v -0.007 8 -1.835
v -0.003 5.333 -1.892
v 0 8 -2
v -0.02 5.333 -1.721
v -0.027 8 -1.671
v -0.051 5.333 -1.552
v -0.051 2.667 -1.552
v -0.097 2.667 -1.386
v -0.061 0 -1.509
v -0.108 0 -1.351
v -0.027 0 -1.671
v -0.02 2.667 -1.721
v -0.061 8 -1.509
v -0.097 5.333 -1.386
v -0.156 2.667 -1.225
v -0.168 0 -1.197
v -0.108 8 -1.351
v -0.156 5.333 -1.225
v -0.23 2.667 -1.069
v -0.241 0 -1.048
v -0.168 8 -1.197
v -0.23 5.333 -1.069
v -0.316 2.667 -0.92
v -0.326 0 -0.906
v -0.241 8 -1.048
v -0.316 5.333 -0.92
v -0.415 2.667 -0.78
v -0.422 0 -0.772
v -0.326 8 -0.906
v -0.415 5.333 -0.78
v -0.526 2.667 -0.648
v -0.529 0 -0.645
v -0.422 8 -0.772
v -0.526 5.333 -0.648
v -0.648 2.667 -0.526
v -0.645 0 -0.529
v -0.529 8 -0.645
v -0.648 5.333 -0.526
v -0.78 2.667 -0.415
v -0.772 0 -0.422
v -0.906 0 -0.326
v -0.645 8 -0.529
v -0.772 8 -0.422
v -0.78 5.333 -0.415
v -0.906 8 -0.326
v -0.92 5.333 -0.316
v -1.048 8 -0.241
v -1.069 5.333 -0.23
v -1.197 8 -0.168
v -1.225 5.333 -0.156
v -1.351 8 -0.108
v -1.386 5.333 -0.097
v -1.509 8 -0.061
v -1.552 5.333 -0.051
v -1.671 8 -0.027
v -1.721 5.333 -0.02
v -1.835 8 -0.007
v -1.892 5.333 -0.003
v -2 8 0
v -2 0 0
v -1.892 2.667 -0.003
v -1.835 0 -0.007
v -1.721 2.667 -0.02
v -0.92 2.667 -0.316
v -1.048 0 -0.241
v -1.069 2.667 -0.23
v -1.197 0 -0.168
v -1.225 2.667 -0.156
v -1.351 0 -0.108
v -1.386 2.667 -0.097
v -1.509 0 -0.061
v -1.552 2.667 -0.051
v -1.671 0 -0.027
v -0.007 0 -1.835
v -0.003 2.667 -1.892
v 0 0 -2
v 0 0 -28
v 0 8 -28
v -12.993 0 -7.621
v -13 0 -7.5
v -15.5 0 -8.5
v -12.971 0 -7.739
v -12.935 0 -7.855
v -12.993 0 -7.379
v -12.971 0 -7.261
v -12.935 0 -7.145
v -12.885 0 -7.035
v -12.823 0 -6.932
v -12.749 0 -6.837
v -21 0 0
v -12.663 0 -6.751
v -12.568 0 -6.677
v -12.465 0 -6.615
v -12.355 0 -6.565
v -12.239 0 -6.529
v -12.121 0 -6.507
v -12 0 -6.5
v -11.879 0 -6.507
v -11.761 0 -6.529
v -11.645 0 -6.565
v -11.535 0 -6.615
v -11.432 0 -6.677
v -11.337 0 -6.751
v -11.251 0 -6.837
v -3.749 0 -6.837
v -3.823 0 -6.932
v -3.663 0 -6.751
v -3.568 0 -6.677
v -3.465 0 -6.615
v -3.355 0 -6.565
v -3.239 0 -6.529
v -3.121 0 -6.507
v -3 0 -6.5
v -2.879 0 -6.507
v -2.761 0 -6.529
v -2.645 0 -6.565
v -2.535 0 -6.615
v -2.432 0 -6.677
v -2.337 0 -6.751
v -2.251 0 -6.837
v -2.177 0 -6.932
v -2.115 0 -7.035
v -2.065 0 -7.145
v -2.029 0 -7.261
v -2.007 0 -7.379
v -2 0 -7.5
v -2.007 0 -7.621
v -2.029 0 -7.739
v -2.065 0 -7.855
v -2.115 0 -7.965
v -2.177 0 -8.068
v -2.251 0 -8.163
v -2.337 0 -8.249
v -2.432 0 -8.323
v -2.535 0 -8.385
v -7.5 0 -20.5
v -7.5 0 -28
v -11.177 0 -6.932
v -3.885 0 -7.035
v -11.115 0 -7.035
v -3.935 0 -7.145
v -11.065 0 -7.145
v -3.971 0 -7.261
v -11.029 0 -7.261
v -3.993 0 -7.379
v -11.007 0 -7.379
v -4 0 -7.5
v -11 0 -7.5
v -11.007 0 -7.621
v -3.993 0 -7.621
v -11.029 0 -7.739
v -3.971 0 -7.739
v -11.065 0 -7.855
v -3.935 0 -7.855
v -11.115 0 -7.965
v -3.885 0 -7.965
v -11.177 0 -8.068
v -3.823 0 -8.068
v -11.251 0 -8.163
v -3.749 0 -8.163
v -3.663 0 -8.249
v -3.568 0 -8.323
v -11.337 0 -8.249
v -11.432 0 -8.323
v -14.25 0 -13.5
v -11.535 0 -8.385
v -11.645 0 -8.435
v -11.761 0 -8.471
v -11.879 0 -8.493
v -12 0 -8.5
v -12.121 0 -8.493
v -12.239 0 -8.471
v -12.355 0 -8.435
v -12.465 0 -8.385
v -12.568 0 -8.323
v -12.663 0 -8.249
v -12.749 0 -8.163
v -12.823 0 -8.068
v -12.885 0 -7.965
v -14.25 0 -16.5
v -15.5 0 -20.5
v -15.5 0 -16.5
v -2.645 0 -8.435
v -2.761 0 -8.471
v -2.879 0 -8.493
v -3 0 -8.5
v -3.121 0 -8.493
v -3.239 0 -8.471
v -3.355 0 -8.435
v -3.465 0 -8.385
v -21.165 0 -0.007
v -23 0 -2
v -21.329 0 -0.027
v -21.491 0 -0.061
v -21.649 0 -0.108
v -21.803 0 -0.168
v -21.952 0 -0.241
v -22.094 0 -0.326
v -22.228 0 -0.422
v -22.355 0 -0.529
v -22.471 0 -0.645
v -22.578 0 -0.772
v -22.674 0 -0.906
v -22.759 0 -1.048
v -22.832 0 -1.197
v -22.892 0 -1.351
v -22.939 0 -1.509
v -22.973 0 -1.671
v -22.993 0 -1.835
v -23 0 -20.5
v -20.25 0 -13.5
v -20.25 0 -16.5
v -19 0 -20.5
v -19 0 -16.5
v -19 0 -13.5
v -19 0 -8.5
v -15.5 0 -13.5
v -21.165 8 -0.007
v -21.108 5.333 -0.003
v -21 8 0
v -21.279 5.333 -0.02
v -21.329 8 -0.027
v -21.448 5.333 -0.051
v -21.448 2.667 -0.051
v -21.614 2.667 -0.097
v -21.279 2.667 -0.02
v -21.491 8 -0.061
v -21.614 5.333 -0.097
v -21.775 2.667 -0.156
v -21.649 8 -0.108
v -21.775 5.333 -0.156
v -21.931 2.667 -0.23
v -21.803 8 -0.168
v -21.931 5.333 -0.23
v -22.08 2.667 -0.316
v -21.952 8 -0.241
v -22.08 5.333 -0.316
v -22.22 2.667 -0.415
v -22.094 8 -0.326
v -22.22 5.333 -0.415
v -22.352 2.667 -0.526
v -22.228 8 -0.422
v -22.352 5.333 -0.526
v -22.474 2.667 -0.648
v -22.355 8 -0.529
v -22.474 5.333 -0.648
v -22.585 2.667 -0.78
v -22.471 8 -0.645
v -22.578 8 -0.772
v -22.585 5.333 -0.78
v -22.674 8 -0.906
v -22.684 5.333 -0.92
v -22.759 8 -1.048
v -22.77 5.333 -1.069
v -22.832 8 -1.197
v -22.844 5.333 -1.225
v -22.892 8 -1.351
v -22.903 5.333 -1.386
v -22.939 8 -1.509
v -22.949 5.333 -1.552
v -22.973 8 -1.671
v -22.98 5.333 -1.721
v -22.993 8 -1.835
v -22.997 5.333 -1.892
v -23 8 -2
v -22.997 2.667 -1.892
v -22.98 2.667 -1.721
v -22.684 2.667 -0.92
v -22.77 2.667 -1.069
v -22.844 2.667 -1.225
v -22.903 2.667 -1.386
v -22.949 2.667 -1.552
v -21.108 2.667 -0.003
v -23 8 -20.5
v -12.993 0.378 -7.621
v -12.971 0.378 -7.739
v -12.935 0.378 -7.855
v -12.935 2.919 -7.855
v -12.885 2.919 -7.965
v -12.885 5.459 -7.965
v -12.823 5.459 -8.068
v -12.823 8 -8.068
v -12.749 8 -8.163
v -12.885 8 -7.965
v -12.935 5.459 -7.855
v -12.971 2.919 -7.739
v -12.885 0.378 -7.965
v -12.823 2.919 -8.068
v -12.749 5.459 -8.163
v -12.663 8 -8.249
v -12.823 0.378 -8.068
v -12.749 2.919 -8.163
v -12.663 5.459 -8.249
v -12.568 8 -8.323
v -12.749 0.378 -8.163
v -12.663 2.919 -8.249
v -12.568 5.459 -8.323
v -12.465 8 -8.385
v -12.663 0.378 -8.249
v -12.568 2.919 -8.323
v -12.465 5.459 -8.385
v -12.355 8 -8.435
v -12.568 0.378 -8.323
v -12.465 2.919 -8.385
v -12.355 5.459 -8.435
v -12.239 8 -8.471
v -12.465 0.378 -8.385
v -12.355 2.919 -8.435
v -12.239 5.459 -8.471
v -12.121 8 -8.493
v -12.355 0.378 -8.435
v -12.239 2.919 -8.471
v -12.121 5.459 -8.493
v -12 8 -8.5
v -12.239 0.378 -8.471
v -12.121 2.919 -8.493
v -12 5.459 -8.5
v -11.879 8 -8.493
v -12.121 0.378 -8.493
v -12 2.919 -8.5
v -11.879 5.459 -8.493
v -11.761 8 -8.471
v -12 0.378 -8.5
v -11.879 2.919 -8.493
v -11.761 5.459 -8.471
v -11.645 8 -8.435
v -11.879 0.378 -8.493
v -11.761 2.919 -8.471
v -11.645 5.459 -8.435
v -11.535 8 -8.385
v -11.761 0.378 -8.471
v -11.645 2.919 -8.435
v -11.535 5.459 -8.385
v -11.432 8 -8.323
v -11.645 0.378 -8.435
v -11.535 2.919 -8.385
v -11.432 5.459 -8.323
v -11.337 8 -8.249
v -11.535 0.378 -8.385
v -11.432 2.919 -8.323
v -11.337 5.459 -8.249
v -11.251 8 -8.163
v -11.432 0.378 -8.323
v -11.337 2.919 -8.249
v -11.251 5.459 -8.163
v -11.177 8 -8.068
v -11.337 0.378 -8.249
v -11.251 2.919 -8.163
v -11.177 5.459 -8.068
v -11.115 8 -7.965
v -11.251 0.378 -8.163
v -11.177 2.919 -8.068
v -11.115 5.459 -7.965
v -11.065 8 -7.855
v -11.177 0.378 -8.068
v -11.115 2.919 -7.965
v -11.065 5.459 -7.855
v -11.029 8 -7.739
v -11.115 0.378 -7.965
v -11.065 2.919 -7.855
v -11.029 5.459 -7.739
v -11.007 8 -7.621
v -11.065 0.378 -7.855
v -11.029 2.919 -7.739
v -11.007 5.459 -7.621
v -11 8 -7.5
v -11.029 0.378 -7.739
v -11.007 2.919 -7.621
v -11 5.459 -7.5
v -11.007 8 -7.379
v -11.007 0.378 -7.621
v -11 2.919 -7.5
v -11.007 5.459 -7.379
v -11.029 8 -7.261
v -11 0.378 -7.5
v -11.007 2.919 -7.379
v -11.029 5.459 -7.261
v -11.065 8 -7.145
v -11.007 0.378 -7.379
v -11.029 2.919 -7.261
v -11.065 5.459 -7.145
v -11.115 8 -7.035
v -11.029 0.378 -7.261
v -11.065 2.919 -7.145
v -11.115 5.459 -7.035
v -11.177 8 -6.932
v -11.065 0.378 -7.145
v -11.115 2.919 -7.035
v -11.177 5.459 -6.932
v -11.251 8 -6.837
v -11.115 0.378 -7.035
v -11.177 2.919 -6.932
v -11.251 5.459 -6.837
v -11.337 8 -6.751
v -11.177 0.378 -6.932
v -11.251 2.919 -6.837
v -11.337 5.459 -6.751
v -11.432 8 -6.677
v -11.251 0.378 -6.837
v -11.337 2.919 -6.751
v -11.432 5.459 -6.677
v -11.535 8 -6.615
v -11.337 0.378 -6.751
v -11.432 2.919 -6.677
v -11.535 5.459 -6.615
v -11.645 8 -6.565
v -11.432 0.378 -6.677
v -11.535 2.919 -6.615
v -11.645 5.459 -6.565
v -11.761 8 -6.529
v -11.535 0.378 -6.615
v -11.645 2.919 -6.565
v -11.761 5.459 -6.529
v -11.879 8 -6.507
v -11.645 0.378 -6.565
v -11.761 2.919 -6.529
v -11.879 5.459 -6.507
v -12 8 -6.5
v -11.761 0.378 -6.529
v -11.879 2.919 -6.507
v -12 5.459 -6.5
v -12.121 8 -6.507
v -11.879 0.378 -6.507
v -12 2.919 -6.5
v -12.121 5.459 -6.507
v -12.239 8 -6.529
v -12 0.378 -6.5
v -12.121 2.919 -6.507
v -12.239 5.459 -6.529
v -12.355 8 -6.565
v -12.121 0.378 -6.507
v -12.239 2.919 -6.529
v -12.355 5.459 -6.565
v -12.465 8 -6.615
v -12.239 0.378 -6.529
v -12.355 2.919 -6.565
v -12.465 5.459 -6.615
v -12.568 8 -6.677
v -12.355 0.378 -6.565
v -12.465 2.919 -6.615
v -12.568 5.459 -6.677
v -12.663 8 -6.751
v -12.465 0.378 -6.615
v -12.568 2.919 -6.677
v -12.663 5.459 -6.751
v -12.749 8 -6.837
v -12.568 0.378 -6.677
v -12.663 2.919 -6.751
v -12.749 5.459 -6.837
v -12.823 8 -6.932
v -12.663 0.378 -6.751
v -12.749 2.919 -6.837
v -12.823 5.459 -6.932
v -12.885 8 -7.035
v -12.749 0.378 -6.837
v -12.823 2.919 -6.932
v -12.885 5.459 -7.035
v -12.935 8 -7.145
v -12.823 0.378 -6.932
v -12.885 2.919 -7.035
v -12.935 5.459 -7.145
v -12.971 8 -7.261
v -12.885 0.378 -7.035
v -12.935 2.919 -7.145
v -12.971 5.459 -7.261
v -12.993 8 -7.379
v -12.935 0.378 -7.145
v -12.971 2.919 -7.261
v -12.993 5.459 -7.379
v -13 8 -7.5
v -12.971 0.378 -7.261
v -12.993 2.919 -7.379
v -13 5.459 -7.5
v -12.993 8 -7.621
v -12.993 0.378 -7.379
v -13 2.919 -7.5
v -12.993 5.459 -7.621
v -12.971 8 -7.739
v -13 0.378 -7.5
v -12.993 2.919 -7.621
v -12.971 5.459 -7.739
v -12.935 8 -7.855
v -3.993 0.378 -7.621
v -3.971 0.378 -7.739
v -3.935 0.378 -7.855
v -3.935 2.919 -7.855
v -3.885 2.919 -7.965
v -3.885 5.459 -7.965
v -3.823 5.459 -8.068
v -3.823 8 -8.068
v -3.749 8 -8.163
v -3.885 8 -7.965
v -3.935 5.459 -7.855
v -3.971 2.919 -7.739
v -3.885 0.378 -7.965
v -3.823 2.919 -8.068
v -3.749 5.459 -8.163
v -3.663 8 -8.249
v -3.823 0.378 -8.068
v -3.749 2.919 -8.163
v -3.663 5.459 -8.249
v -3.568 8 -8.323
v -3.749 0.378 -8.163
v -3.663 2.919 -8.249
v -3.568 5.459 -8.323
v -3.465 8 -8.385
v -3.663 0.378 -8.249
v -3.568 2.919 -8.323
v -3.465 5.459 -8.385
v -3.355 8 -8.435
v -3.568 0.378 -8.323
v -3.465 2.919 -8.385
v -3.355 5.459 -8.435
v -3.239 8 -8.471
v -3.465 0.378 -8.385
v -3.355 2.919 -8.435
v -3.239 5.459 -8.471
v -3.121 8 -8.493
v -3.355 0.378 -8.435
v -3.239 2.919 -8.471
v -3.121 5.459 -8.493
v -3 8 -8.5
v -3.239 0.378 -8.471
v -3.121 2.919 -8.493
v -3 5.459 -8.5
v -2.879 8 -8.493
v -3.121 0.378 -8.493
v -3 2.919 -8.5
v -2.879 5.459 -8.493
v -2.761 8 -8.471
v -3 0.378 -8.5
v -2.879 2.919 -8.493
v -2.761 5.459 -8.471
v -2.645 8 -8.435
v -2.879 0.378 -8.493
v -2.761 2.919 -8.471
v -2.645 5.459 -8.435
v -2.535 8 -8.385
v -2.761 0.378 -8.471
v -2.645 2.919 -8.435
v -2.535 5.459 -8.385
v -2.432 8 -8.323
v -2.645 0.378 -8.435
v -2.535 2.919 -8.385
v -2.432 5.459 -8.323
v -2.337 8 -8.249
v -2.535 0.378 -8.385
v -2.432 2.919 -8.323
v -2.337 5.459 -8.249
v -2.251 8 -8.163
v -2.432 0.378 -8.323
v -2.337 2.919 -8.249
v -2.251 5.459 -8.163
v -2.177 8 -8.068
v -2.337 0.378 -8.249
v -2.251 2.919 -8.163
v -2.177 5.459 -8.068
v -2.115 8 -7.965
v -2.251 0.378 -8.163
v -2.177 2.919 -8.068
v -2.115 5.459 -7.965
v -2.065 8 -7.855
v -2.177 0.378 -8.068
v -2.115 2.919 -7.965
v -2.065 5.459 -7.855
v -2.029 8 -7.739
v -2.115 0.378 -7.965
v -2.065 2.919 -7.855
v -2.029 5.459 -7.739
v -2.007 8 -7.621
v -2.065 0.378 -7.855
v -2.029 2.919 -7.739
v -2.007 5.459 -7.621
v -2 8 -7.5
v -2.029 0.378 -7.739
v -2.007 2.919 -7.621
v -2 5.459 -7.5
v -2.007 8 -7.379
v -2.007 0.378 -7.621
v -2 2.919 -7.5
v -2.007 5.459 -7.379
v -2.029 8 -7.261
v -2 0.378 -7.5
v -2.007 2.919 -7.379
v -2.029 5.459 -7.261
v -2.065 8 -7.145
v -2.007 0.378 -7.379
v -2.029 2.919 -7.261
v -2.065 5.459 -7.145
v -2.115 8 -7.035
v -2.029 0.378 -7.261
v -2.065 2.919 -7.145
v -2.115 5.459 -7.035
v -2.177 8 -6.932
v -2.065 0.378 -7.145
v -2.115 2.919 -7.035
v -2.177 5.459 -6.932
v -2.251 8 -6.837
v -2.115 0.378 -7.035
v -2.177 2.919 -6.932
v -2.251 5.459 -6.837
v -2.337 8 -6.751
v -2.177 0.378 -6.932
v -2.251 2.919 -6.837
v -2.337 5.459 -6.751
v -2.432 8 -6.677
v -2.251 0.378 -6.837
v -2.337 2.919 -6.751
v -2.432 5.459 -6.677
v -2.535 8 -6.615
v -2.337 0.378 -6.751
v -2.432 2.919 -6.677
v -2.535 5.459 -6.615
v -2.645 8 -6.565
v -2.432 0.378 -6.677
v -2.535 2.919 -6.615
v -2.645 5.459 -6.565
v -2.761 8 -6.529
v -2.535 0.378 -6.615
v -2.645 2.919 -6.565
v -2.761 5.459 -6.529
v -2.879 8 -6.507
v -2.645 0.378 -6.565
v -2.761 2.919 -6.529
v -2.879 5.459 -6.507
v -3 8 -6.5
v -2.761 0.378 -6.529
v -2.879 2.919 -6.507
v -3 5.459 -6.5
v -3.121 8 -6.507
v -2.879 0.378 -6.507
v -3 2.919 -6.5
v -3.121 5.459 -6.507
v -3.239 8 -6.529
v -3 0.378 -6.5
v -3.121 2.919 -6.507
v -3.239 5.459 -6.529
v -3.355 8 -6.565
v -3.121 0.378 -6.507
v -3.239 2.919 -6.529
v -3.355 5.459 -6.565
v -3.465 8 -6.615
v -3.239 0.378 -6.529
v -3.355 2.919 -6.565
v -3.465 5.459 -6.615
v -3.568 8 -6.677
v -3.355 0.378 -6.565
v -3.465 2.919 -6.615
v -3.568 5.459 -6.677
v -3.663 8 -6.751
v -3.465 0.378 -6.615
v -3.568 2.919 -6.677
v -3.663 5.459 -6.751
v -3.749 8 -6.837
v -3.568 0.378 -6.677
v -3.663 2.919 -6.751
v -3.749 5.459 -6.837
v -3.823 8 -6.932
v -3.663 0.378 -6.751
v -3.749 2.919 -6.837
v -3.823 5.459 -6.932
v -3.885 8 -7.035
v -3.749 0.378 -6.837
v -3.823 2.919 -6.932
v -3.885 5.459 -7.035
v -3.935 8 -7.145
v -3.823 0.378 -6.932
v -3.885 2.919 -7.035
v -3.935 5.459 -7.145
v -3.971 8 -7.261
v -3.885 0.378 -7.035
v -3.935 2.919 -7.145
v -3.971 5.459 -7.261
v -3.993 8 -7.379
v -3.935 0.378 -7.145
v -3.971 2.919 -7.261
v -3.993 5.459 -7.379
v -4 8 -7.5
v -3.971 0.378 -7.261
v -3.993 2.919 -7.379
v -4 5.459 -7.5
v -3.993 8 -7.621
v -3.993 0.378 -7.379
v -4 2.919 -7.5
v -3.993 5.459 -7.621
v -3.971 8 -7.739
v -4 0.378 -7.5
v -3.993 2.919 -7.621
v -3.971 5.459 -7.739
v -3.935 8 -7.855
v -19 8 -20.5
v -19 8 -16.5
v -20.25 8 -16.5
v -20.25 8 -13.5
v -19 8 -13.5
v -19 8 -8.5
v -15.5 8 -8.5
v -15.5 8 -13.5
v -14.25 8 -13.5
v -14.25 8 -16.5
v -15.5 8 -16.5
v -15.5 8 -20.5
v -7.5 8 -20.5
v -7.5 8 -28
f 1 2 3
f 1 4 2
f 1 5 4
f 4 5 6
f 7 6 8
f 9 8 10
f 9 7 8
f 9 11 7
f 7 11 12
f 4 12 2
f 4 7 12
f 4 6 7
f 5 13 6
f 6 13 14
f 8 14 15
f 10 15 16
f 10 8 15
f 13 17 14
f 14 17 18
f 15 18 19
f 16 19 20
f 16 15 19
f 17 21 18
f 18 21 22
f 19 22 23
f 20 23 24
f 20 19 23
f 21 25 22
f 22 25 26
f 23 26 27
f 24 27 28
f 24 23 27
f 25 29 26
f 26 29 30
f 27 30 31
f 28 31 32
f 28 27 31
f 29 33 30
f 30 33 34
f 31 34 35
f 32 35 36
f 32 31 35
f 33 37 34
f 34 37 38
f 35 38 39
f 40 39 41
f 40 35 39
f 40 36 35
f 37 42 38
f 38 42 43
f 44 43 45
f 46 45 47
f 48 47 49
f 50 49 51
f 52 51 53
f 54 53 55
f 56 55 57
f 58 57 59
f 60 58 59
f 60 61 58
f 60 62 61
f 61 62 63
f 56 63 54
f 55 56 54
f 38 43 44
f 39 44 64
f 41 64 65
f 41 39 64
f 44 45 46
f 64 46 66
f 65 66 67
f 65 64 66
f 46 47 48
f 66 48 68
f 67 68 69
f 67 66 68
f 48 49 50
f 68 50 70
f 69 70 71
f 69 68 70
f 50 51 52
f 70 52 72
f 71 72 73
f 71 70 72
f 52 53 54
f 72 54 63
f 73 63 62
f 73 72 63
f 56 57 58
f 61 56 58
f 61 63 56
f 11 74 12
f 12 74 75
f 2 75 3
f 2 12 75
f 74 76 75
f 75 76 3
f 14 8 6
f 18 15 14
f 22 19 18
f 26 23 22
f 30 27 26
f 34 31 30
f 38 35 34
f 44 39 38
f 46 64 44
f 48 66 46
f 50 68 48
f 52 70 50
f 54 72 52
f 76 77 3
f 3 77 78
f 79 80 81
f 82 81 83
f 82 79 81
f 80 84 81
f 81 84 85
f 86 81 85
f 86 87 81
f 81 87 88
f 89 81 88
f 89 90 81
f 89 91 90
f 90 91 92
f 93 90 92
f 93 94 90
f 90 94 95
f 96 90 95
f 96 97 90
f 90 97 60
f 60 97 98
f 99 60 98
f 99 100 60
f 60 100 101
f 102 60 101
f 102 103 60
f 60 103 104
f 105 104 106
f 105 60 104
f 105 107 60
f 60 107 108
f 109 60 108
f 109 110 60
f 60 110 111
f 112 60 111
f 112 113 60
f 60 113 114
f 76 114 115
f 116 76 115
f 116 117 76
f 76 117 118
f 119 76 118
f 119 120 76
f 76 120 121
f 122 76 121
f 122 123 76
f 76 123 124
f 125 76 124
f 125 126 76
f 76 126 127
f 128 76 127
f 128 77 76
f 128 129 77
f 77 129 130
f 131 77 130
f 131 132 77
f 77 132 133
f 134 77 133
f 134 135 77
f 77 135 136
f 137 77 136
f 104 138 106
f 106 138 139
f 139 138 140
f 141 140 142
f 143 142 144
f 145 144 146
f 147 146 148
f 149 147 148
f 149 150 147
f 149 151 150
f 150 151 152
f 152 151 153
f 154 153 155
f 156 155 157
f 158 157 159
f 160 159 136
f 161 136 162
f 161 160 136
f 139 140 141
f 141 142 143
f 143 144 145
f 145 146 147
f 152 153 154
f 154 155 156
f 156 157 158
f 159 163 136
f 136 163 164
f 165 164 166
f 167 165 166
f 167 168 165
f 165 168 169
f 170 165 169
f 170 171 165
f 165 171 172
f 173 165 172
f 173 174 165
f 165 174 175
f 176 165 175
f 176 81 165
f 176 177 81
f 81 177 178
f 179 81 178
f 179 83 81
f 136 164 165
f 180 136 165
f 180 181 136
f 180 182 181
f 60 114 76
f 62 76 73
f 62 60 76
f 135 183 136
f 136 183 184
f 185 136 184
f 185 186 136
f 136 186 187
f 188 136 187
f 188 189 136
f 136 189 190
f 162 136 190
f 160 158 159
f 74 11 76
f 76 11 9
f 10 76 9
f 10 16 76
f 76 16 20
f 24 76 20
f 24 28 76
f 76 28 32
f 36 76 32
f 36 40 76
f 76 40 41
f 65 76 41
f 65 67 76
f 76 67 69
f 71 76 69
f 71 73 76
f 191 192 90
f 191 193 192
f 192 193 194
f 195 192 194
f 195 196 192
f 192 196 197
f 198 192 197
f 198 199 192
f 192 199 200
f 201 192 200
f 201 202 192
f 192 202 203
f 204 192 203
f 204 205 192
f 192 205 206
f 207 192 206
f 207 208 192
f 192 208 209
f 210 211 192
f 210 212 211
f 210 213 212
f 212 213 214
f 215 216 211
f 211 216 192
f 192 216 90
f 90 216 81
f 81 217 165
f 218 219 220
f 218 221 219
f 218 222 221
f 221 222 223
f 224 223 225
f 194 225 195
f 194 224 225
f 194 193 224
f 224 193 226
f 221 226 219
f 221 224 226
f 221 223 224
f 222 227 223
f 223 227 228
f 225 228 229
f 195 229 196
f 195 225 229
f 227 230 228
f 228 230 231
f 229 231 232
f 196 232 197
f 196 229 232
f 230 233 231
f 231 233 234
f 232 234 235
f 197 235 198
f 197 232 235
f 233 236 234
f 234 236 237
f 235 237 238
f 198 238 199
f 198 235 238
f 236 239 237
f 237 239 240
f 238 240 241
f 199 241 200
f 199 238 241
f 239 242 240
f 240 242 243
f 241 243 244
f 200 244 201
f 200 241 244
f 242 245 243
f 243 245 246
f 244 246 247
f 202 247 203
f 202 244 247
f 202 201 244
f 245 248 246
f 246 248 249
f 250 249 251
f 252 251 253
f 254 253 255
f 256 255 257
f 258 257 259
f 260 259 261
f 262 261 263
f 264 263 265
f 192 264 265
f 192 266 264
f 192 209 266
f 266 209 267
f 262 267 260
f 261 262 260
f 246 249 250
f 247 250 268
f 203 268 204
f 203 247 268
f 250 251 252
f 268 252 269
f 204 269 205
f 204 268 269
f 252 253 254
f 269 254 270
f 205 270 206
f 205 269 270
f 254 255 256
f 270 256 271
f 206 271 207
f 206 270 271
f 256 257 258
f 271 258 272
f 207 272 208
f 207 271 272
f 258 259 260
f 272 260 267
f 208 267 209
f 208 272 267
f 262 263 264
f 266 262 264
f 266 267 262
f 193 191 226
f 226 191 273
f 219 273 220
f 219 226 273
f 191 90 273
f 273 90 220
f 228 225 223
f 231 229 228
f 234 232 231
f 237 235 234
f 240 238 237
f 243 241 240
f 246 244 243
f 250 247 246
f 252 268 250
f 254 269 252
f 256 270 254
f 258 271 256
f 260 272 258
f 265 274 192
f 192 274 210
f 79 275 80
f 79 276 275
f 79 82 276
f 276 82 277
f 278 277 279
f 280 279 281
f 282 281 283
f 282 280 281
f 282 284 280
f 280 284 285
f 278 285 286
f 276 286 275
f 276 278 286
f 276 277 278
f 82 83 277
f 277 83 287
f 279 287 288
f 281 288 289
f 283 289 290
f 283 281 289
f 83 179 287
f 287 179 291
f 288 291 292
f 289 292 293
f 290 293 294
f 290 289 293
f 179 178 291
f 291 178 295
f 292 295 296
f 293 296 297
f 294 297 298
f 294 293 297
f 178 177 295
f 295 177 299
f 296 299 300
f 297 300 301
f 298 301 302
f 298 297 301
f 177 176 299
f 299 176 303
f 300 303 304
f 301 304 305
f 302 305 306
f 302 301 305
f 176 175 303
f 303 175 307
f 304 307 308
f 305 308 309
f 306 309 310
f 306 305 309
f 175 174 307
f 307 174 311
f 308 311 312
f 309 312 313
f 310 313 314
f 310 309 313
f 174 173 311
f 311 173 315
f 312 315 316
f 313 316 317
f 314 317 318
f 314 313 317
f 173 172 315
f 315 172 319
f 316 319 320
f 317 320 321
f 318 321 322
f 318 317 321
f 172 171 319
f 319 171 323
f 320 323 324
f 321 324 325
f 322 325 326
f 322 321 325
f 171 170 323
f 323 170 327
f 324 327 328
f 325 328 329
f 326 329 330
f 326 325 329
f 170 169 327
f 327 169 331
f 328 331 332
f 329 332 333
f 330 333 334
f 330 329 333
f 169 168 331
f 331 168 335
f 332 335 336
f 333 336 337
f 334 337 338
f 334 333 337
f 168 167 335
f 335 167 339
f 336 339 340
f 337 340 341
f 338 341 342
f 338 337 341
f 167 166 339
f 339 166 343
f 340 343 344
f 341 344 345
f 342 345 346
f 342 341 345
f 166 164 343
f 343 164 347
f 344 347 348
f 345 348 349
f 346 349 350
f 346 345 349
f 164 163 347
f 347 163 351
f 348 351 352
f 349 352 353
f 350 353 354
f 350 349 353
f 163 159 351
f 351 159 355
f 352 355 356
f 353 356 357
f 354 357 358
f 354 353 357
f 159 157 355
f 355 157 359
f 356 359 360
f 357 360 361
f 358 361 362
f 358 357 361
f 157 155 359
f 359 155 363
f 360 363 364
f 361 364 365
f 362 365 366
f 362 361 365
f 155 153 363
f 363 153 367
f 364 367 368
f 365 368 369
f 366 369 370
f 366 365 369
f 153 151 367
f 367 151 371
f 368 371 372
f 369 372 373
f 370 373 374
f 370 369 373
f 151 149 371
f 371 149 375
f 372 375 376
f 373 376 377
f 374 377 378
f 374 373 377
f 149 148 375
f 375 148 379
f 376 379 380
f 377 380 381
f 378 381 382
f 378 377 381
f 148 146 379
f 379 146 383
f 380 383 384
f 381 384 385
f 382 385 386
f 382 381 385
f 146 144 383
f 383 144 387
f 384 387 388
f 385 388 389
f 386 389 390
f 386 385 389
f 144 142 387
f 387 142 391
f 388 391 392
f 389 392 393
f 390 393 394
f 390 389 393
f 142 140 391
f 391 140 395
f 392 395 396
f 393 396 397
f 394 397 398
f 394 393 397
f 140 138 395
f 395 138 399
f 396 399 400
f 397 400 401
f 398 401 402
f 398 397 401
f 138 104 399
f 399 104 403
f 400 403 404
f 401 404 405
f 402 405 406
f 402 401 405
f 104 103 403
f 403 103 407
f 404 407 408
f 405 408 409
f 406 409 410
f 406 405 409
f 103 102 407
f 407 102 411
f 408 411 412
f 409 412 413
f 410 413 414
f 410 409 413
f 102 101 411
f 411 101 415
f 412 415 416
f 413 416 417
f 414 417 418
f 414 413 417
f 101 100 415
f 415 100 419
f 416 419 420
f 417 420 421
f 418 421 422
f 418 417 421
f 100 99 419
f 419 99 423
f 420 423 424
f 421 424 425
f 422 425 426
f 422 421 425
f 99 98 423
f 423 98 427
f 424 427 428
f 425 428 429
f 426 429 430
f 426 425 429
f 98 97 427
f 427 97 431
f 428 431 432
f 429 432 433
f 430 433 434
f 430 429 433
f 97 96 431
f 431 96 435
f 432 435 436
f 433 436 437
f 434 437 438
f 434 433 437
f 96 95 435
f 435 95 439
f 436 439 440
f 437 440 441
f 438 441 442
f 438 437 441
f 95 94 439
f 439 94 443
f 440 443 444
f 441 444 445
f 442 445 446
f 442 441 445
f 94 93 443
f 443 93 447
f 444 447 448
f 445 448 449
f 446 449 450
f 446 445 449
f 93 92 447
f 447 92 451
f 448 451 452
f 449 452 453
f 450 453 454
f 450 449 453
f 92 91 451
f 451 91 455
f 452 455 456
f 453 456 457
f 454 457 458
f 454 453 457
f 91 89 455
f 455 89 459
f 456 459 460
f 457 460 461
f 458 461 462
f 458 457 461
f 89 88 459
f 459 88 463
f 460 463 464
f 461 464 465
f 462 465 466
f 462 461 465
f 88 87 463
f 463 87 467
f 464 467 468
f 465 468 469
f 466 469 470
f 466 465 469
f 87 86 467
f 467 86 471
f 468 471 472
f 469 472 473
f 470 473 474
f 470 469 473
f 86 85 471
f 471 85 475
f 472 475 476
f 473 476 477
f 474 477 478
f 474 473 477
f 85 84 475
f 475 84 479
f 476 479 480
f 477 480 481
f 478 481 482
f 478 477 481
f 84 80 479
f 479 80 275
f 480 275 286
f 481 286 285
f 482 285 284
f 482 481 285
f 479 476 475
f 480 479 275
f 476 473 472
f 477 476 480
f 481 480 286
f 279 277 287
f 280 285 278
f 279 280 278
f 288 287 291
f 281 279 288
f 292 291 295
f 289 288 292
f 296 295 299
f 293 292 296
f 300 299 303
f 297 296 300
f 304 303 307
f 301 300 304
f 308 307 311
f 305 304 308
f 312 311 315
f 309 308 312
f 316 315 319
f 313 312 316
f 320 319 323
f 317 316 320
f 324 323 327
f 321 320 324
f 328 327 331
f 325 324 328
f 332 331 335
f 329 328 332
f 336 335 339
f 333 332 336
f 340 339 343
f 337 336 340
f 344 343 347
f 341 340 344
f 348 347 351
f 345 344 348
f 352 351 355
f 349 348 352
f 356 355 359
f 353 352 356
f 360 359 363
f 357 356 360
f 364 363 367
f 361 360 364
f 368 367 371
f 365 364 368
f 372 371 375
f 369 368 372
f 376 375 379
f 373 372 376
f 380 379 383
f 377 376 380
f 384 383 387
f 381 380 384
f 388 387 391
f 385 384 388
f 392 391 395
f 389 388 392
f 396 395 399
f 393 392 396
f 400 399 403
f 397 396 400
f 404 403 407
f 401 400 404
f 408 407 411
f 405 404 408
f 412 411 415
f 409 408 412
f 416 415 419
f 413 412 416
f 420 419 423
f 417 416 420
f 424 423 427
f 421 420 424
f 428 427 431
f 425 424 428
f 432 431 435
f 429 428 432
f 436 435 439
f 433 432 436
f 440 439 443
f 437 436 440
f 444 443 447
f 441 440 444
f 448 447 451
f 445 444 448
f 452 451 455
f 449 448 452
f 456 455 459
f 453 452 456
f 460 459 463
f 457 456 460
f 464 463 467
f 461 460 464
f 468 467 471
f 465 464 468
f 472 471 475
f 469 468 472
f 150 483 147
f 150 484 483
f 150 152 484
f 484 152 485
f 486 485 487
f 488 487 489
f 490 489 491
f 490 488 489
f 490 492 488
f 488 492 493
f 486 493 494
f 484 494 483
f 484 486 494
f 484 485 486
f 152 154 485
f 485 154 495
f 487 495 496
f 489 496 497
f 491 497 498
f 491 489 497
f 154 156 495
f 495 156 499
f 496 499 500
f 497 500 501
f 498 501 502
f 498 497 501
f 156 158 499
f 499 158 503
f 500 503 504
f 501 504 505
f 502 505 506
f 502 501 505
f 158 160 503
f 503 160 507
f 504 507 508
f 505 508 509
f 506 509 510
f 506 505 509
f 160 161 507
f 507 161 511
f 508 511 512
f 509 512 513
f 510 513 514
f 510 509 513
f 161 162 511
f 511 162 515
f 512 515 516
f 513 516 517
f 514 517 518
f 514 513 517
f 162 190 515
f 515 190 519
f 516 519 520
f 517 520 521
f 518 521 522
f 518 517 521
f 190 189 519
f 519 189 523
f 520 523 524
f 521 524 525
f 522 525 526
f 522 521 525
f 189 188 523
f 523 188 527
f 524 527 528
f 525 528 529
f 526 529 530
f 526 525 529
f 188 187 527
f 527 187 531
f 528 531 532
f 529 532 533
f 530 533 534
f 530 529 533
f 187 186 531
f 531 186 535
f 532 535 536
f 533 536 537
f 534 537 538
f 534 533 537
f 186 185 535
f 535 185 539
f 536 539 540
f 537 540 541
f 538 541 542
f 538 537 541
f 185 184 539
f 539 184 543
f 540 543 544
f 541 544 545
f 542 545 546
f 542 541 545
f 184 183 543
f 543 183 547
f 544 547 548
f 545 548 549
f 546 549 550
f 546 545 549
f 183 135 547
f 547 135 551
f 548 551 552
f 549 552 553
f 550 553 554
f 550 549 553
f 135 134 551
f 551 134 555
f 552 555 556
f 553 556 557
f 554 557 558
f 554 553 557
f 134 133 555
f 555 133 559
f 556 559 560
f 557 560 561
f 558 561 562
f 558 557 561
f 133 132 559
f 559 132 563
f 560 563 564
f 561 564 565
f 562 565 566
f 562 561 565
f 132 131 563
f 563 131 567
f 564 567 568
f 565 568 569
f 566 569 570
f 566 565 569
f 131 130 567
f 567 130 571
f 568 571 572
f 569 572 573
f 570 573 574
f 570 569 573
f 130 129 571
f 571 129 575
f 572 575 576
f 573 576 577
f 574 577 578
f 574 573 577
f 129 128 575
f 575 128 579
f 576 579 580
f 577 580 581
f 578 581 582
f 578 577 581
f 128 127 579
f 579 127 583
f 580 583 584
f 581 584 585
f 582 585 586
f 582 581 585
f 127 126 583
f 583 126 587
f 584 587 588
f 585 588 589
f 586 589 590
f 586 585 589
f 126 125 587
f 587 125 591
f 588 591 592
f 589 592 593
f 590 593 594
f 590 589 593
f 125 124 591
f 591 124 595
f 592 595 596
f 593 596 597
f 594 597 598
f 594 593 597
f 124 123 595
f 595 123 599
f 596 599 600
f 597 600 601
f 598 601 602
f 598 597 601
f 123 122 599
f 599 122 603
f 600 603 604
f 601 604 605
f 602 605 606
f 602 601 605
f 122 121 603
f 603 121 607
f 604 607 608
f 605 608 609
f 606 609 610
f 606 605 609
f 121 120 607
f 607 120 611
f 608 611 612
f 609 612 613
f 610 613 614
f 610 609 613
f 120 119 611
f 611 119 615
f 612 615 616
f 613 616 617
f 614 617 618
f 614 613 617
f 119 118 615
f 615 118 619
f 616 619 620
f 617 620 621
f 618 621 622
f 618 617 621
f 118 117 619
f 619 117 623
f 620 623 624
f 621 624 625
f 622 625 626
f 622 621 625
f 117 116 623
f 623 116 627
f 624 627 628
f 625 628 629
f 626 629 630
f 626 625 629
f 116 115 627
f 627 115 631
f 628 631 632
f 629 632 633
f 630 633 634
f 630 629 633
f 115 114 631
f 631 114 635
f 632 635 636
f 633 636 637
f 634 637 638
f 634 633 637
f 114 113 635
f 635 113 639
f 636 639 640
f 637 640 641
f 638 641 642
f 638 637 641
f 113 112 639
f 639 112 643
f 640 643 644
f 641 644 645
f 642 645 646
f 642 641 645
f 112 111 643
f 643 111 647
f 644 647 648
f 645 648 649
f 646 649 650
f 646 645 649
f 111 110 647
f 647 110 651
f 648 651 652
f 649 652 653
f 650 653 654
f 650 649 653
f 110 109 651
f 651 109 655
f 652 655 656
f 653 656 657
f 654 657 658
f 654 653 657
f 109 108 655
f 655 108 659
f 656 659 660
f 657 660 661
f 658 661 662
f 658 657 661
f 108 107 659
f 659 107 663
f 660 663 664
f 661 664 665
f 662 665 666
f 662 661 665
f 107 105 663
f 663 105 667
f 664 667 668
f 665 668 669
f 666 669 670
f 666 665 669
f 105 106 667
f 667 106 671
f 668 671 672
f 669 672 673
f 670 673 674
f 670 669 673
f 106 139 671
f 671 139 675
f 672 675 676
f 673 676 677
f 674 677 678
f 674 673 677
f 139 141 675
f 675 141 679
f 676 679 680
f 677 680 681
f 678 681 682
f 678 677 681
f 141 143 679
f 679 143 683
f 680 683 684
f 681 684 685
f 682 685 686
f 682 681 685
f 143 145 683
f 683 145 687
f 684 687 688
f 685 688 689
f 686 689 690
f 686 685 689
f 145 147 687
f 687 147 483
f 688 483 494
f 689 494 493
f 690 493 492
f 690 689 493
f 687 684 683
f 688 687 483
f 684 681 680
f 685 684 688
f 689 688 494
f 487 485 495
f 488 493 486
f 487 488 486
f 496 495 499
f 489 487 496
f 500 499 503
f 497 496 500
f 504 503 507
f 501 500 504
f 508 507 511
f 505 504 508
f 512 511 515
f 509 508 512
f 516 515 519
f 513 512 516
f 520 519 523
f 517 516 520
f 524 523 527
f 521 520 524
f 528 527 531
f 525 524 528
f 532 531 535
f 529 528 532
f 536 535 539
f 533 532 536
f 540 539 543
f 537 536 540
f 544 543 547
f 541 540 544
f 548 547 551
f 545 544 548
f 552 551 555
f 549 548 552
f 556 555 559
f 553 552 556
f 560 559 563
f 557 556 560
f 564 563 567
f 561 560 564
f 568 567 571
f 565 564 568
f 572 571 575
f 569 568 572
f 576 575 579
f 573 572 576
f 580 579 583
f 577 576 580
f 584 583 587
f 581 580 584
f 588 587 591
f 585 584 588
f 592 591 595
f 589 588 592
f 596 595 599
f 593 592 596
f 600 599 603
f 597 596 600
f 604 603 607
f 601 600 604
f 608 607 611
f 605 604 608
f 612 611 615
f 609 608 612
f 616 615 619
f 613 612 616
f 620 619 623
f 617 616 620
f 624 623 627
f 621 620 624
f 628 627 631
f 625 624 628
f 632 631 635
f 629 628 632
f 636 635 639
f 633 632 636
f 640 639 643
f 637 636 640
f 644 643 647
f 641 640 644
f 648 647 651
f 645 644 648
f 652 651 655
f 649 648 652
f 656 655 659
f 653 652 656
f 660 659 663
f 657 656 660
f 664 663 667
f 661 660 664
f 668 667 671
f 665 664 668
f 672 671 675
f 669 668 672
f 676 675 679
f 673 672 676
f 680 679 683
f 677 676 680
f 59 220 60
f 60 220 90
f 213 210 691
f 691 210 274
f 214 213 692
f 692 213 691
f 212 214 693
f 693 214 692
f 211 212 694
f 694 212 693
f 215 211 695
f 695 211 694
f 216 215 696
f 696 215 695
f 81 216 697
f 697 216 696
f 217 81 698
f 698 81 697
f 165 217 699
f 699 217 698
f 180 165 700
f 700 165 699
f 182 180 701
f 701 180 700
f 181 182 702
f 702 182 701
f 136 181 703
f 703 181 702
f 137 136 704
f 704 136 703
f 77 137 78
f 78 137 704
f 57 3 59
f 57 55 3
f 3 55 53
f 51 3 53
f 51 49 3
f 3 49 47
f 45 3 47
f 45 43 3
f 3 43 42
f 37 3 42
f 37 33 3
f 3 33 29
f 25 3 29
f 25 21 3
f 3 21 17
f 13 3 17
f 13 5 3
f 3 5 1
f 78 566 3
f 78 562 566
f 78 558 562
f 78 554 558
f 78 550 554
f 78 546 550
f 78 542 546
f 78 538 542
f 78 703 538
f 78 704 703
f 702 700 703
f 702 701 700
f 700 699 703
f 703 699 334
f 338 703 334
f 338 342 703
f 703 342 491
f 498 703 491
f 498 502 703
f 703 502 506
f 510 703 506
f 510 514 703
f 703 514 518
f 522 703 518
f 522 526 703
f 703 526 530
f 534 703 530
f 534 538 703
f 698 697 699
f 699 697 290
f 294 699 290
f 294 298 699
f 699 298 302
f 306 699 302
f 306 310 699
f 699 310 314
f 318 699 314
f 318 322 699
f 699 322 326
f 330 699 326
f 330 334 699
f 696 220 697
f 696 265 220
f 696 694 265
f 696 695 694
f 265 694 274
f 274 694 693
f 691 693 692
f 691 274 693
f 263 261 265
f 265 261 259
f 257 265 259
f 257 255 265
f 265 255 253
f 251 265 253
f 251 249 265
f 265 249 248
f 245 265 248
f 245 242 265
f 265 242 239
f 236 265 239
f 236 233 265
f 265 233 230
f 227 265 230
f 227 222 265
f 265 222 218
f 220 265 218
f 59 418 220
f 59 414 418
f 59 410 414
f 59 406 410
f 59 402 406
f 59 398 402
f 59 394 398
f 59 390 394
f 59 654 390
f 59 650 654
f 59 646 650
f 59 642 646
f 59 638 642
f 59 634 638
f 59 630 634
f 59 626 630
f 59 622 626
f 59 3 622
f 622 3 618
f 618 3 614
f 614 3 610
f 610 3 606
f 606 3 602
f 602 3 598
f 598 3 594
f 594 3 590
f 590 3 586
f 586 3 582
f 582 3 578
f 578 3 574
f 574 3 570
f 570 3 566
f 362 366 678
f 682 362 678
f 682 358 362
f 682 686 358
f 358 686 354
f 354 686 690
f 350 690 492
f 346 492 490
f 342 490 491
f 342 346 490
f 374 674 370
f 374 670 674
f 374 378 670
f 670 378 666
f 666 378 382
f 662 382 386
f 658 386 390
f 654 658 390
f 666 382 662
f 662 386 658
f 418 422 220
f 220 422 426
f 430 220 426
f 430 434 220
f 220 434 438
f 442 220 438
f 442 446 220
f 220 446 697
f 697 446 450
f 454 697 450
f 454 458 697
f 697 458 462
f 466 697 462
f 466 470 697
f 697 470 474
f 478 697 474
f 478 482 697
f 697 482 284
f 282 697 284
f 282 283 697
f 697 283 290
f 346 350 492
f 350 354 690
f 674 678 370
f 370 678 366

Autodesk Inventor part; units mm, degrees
ref_plane "YZ Plane" through (0, 0, 0) normal (1, 0, 0) x (0, 1, 0)
sketch "Sketch1" plane through (0, 0, 0) normal (0, 1, 0) x (-1, 0, 0)
  line L0 (0, 0) -> (23, 0)
  line L1 (23, 0) -> (23, -20.5)
  line L2 (7.5, -28) -> (0, -28)
  line L3 (0, -28) -> (0, 0)
  line L4 (7.5, -28) -> (7.5, -20.5)
  line L5 (7.5, -20.5) -> (23, -20.5)
  line L6 (19, -20.5) -> (19, -16.5)
  line L7 (19, -16.5) -> (20.25, -16.5)
  line L8 (20.25, -16.5) -> (20.25, -13.5)
  line L9 (20.25, -13.5) -> (19, -13.5)
  line L10 (19, -13.5) -> (19, -8.5)
  line L11 (19, -8.5) -> (15.5, -8.5)
  line L12 (15.5, -8.5) -> (15.5, -13.5)
  line L13 (15.5, -13.5) -> (14.25, -13.5)
  line L14 (14.25, -13.5) -> (14.25, -16.5)
  line L15 (14.25, -16.5) -> (15.5, -16.5)
  line L16 (15.5, -20.5) -> (15.5, -16.5)
  line L17 (17.25, -8.5) -> (17.25, -20.5) construction
  dimension "d0" = 28
  dimension "d1" = 23
  dimension "d2" = 7.5
  dimension "d3" = 20.5
  dimension "d4" = 3.5
  dimension "d5" = 6
  dimension "d6" = 4
  dimension "d7" = 3
  dimension "d8" = 5
  dimension "d9" = 4
extrude "Extrusion1" add sketch "Sketch1" along normal blind 8 contours L0 L1 L5 L6 L7 L8 L9 L10 L11 L12 L13 L14 L15 L16 L4 L2 L3
sketch "Sketch2" plane through (0, 8, 0) normal (0, 1, 0) x (1, 0, 0)
  line L0 (0, 0) -> (0, 28) construction
  line L1 (0, 28) -> (-7.5, 28) construction
  line L2 (-7.5, 28) -> (-7.5, 20.5) construction
  line L3 (-7.5, 20.5) -> (-15.5, 20.5) construction
  line L4 (-15.5, 20.5) -> (-15.5, 16.5) construction
  line L5 (-15.5, 16.5) -> (-14.25, 16.5) construction
  line L6 (-14.25, 16.5) -> (-14.25, 13.5) construction
  line L7 (-14.25, 13.5) -> (-15.5, 13.5) construction
  line L8 (-15.5, 13.5) -> (-15.5, 8.5) construction
  line L9 (-15.5, 8.5) -> (-19, 8.5) construction
  line L10 (-19, 8.5) -> (-19, 13.5) construction
  line L11 (-19, 13.5) -> (-20.25, 13.5) construction
  line L12 (-20.25, 13.5) -> (-20.25, 16.5) construction
  line L13 (-20.25, 16.5) -> (-19, 16.5) construction
  line L14 (-19, 16.5) -> (-19, 20.5) construction
  line L15 (-19, 20.5) -> (-23, 20.5) construction
  line L16 (-23, 20.5) -> (-23, 0) construction
  line L17 (-23, 0) -> (0, 0) construction
  point P0 (-12, 7.5)
  point P1 (-3, 7.5)
  dimension "d12" = 7.5
  dimension "d13" = 3
  dimension "d14" = 9
hole "Hole1" at (-12, 8, -7.5) at (-3, 8, -7.5) direction (0, -1, 0) diameter 2 end through all
fillet "Fillet1" radius 2 2 edges at (-23, 4, 0) (0, 4, 0)
ref_plane "Work Plane1" through (0, 4, 0) normal (0, 1, 0) x (-1, 0, 0)
ref_plane "Work Plane2" through (-17.25, 0, -8.5) normal (1, 0, 0) x (0, 0, -1)
equation "\"d23\" = 0.5 * THICKNESS"
equation "\"THICKNESS\" = 8"
properties part number "A8-0018"
